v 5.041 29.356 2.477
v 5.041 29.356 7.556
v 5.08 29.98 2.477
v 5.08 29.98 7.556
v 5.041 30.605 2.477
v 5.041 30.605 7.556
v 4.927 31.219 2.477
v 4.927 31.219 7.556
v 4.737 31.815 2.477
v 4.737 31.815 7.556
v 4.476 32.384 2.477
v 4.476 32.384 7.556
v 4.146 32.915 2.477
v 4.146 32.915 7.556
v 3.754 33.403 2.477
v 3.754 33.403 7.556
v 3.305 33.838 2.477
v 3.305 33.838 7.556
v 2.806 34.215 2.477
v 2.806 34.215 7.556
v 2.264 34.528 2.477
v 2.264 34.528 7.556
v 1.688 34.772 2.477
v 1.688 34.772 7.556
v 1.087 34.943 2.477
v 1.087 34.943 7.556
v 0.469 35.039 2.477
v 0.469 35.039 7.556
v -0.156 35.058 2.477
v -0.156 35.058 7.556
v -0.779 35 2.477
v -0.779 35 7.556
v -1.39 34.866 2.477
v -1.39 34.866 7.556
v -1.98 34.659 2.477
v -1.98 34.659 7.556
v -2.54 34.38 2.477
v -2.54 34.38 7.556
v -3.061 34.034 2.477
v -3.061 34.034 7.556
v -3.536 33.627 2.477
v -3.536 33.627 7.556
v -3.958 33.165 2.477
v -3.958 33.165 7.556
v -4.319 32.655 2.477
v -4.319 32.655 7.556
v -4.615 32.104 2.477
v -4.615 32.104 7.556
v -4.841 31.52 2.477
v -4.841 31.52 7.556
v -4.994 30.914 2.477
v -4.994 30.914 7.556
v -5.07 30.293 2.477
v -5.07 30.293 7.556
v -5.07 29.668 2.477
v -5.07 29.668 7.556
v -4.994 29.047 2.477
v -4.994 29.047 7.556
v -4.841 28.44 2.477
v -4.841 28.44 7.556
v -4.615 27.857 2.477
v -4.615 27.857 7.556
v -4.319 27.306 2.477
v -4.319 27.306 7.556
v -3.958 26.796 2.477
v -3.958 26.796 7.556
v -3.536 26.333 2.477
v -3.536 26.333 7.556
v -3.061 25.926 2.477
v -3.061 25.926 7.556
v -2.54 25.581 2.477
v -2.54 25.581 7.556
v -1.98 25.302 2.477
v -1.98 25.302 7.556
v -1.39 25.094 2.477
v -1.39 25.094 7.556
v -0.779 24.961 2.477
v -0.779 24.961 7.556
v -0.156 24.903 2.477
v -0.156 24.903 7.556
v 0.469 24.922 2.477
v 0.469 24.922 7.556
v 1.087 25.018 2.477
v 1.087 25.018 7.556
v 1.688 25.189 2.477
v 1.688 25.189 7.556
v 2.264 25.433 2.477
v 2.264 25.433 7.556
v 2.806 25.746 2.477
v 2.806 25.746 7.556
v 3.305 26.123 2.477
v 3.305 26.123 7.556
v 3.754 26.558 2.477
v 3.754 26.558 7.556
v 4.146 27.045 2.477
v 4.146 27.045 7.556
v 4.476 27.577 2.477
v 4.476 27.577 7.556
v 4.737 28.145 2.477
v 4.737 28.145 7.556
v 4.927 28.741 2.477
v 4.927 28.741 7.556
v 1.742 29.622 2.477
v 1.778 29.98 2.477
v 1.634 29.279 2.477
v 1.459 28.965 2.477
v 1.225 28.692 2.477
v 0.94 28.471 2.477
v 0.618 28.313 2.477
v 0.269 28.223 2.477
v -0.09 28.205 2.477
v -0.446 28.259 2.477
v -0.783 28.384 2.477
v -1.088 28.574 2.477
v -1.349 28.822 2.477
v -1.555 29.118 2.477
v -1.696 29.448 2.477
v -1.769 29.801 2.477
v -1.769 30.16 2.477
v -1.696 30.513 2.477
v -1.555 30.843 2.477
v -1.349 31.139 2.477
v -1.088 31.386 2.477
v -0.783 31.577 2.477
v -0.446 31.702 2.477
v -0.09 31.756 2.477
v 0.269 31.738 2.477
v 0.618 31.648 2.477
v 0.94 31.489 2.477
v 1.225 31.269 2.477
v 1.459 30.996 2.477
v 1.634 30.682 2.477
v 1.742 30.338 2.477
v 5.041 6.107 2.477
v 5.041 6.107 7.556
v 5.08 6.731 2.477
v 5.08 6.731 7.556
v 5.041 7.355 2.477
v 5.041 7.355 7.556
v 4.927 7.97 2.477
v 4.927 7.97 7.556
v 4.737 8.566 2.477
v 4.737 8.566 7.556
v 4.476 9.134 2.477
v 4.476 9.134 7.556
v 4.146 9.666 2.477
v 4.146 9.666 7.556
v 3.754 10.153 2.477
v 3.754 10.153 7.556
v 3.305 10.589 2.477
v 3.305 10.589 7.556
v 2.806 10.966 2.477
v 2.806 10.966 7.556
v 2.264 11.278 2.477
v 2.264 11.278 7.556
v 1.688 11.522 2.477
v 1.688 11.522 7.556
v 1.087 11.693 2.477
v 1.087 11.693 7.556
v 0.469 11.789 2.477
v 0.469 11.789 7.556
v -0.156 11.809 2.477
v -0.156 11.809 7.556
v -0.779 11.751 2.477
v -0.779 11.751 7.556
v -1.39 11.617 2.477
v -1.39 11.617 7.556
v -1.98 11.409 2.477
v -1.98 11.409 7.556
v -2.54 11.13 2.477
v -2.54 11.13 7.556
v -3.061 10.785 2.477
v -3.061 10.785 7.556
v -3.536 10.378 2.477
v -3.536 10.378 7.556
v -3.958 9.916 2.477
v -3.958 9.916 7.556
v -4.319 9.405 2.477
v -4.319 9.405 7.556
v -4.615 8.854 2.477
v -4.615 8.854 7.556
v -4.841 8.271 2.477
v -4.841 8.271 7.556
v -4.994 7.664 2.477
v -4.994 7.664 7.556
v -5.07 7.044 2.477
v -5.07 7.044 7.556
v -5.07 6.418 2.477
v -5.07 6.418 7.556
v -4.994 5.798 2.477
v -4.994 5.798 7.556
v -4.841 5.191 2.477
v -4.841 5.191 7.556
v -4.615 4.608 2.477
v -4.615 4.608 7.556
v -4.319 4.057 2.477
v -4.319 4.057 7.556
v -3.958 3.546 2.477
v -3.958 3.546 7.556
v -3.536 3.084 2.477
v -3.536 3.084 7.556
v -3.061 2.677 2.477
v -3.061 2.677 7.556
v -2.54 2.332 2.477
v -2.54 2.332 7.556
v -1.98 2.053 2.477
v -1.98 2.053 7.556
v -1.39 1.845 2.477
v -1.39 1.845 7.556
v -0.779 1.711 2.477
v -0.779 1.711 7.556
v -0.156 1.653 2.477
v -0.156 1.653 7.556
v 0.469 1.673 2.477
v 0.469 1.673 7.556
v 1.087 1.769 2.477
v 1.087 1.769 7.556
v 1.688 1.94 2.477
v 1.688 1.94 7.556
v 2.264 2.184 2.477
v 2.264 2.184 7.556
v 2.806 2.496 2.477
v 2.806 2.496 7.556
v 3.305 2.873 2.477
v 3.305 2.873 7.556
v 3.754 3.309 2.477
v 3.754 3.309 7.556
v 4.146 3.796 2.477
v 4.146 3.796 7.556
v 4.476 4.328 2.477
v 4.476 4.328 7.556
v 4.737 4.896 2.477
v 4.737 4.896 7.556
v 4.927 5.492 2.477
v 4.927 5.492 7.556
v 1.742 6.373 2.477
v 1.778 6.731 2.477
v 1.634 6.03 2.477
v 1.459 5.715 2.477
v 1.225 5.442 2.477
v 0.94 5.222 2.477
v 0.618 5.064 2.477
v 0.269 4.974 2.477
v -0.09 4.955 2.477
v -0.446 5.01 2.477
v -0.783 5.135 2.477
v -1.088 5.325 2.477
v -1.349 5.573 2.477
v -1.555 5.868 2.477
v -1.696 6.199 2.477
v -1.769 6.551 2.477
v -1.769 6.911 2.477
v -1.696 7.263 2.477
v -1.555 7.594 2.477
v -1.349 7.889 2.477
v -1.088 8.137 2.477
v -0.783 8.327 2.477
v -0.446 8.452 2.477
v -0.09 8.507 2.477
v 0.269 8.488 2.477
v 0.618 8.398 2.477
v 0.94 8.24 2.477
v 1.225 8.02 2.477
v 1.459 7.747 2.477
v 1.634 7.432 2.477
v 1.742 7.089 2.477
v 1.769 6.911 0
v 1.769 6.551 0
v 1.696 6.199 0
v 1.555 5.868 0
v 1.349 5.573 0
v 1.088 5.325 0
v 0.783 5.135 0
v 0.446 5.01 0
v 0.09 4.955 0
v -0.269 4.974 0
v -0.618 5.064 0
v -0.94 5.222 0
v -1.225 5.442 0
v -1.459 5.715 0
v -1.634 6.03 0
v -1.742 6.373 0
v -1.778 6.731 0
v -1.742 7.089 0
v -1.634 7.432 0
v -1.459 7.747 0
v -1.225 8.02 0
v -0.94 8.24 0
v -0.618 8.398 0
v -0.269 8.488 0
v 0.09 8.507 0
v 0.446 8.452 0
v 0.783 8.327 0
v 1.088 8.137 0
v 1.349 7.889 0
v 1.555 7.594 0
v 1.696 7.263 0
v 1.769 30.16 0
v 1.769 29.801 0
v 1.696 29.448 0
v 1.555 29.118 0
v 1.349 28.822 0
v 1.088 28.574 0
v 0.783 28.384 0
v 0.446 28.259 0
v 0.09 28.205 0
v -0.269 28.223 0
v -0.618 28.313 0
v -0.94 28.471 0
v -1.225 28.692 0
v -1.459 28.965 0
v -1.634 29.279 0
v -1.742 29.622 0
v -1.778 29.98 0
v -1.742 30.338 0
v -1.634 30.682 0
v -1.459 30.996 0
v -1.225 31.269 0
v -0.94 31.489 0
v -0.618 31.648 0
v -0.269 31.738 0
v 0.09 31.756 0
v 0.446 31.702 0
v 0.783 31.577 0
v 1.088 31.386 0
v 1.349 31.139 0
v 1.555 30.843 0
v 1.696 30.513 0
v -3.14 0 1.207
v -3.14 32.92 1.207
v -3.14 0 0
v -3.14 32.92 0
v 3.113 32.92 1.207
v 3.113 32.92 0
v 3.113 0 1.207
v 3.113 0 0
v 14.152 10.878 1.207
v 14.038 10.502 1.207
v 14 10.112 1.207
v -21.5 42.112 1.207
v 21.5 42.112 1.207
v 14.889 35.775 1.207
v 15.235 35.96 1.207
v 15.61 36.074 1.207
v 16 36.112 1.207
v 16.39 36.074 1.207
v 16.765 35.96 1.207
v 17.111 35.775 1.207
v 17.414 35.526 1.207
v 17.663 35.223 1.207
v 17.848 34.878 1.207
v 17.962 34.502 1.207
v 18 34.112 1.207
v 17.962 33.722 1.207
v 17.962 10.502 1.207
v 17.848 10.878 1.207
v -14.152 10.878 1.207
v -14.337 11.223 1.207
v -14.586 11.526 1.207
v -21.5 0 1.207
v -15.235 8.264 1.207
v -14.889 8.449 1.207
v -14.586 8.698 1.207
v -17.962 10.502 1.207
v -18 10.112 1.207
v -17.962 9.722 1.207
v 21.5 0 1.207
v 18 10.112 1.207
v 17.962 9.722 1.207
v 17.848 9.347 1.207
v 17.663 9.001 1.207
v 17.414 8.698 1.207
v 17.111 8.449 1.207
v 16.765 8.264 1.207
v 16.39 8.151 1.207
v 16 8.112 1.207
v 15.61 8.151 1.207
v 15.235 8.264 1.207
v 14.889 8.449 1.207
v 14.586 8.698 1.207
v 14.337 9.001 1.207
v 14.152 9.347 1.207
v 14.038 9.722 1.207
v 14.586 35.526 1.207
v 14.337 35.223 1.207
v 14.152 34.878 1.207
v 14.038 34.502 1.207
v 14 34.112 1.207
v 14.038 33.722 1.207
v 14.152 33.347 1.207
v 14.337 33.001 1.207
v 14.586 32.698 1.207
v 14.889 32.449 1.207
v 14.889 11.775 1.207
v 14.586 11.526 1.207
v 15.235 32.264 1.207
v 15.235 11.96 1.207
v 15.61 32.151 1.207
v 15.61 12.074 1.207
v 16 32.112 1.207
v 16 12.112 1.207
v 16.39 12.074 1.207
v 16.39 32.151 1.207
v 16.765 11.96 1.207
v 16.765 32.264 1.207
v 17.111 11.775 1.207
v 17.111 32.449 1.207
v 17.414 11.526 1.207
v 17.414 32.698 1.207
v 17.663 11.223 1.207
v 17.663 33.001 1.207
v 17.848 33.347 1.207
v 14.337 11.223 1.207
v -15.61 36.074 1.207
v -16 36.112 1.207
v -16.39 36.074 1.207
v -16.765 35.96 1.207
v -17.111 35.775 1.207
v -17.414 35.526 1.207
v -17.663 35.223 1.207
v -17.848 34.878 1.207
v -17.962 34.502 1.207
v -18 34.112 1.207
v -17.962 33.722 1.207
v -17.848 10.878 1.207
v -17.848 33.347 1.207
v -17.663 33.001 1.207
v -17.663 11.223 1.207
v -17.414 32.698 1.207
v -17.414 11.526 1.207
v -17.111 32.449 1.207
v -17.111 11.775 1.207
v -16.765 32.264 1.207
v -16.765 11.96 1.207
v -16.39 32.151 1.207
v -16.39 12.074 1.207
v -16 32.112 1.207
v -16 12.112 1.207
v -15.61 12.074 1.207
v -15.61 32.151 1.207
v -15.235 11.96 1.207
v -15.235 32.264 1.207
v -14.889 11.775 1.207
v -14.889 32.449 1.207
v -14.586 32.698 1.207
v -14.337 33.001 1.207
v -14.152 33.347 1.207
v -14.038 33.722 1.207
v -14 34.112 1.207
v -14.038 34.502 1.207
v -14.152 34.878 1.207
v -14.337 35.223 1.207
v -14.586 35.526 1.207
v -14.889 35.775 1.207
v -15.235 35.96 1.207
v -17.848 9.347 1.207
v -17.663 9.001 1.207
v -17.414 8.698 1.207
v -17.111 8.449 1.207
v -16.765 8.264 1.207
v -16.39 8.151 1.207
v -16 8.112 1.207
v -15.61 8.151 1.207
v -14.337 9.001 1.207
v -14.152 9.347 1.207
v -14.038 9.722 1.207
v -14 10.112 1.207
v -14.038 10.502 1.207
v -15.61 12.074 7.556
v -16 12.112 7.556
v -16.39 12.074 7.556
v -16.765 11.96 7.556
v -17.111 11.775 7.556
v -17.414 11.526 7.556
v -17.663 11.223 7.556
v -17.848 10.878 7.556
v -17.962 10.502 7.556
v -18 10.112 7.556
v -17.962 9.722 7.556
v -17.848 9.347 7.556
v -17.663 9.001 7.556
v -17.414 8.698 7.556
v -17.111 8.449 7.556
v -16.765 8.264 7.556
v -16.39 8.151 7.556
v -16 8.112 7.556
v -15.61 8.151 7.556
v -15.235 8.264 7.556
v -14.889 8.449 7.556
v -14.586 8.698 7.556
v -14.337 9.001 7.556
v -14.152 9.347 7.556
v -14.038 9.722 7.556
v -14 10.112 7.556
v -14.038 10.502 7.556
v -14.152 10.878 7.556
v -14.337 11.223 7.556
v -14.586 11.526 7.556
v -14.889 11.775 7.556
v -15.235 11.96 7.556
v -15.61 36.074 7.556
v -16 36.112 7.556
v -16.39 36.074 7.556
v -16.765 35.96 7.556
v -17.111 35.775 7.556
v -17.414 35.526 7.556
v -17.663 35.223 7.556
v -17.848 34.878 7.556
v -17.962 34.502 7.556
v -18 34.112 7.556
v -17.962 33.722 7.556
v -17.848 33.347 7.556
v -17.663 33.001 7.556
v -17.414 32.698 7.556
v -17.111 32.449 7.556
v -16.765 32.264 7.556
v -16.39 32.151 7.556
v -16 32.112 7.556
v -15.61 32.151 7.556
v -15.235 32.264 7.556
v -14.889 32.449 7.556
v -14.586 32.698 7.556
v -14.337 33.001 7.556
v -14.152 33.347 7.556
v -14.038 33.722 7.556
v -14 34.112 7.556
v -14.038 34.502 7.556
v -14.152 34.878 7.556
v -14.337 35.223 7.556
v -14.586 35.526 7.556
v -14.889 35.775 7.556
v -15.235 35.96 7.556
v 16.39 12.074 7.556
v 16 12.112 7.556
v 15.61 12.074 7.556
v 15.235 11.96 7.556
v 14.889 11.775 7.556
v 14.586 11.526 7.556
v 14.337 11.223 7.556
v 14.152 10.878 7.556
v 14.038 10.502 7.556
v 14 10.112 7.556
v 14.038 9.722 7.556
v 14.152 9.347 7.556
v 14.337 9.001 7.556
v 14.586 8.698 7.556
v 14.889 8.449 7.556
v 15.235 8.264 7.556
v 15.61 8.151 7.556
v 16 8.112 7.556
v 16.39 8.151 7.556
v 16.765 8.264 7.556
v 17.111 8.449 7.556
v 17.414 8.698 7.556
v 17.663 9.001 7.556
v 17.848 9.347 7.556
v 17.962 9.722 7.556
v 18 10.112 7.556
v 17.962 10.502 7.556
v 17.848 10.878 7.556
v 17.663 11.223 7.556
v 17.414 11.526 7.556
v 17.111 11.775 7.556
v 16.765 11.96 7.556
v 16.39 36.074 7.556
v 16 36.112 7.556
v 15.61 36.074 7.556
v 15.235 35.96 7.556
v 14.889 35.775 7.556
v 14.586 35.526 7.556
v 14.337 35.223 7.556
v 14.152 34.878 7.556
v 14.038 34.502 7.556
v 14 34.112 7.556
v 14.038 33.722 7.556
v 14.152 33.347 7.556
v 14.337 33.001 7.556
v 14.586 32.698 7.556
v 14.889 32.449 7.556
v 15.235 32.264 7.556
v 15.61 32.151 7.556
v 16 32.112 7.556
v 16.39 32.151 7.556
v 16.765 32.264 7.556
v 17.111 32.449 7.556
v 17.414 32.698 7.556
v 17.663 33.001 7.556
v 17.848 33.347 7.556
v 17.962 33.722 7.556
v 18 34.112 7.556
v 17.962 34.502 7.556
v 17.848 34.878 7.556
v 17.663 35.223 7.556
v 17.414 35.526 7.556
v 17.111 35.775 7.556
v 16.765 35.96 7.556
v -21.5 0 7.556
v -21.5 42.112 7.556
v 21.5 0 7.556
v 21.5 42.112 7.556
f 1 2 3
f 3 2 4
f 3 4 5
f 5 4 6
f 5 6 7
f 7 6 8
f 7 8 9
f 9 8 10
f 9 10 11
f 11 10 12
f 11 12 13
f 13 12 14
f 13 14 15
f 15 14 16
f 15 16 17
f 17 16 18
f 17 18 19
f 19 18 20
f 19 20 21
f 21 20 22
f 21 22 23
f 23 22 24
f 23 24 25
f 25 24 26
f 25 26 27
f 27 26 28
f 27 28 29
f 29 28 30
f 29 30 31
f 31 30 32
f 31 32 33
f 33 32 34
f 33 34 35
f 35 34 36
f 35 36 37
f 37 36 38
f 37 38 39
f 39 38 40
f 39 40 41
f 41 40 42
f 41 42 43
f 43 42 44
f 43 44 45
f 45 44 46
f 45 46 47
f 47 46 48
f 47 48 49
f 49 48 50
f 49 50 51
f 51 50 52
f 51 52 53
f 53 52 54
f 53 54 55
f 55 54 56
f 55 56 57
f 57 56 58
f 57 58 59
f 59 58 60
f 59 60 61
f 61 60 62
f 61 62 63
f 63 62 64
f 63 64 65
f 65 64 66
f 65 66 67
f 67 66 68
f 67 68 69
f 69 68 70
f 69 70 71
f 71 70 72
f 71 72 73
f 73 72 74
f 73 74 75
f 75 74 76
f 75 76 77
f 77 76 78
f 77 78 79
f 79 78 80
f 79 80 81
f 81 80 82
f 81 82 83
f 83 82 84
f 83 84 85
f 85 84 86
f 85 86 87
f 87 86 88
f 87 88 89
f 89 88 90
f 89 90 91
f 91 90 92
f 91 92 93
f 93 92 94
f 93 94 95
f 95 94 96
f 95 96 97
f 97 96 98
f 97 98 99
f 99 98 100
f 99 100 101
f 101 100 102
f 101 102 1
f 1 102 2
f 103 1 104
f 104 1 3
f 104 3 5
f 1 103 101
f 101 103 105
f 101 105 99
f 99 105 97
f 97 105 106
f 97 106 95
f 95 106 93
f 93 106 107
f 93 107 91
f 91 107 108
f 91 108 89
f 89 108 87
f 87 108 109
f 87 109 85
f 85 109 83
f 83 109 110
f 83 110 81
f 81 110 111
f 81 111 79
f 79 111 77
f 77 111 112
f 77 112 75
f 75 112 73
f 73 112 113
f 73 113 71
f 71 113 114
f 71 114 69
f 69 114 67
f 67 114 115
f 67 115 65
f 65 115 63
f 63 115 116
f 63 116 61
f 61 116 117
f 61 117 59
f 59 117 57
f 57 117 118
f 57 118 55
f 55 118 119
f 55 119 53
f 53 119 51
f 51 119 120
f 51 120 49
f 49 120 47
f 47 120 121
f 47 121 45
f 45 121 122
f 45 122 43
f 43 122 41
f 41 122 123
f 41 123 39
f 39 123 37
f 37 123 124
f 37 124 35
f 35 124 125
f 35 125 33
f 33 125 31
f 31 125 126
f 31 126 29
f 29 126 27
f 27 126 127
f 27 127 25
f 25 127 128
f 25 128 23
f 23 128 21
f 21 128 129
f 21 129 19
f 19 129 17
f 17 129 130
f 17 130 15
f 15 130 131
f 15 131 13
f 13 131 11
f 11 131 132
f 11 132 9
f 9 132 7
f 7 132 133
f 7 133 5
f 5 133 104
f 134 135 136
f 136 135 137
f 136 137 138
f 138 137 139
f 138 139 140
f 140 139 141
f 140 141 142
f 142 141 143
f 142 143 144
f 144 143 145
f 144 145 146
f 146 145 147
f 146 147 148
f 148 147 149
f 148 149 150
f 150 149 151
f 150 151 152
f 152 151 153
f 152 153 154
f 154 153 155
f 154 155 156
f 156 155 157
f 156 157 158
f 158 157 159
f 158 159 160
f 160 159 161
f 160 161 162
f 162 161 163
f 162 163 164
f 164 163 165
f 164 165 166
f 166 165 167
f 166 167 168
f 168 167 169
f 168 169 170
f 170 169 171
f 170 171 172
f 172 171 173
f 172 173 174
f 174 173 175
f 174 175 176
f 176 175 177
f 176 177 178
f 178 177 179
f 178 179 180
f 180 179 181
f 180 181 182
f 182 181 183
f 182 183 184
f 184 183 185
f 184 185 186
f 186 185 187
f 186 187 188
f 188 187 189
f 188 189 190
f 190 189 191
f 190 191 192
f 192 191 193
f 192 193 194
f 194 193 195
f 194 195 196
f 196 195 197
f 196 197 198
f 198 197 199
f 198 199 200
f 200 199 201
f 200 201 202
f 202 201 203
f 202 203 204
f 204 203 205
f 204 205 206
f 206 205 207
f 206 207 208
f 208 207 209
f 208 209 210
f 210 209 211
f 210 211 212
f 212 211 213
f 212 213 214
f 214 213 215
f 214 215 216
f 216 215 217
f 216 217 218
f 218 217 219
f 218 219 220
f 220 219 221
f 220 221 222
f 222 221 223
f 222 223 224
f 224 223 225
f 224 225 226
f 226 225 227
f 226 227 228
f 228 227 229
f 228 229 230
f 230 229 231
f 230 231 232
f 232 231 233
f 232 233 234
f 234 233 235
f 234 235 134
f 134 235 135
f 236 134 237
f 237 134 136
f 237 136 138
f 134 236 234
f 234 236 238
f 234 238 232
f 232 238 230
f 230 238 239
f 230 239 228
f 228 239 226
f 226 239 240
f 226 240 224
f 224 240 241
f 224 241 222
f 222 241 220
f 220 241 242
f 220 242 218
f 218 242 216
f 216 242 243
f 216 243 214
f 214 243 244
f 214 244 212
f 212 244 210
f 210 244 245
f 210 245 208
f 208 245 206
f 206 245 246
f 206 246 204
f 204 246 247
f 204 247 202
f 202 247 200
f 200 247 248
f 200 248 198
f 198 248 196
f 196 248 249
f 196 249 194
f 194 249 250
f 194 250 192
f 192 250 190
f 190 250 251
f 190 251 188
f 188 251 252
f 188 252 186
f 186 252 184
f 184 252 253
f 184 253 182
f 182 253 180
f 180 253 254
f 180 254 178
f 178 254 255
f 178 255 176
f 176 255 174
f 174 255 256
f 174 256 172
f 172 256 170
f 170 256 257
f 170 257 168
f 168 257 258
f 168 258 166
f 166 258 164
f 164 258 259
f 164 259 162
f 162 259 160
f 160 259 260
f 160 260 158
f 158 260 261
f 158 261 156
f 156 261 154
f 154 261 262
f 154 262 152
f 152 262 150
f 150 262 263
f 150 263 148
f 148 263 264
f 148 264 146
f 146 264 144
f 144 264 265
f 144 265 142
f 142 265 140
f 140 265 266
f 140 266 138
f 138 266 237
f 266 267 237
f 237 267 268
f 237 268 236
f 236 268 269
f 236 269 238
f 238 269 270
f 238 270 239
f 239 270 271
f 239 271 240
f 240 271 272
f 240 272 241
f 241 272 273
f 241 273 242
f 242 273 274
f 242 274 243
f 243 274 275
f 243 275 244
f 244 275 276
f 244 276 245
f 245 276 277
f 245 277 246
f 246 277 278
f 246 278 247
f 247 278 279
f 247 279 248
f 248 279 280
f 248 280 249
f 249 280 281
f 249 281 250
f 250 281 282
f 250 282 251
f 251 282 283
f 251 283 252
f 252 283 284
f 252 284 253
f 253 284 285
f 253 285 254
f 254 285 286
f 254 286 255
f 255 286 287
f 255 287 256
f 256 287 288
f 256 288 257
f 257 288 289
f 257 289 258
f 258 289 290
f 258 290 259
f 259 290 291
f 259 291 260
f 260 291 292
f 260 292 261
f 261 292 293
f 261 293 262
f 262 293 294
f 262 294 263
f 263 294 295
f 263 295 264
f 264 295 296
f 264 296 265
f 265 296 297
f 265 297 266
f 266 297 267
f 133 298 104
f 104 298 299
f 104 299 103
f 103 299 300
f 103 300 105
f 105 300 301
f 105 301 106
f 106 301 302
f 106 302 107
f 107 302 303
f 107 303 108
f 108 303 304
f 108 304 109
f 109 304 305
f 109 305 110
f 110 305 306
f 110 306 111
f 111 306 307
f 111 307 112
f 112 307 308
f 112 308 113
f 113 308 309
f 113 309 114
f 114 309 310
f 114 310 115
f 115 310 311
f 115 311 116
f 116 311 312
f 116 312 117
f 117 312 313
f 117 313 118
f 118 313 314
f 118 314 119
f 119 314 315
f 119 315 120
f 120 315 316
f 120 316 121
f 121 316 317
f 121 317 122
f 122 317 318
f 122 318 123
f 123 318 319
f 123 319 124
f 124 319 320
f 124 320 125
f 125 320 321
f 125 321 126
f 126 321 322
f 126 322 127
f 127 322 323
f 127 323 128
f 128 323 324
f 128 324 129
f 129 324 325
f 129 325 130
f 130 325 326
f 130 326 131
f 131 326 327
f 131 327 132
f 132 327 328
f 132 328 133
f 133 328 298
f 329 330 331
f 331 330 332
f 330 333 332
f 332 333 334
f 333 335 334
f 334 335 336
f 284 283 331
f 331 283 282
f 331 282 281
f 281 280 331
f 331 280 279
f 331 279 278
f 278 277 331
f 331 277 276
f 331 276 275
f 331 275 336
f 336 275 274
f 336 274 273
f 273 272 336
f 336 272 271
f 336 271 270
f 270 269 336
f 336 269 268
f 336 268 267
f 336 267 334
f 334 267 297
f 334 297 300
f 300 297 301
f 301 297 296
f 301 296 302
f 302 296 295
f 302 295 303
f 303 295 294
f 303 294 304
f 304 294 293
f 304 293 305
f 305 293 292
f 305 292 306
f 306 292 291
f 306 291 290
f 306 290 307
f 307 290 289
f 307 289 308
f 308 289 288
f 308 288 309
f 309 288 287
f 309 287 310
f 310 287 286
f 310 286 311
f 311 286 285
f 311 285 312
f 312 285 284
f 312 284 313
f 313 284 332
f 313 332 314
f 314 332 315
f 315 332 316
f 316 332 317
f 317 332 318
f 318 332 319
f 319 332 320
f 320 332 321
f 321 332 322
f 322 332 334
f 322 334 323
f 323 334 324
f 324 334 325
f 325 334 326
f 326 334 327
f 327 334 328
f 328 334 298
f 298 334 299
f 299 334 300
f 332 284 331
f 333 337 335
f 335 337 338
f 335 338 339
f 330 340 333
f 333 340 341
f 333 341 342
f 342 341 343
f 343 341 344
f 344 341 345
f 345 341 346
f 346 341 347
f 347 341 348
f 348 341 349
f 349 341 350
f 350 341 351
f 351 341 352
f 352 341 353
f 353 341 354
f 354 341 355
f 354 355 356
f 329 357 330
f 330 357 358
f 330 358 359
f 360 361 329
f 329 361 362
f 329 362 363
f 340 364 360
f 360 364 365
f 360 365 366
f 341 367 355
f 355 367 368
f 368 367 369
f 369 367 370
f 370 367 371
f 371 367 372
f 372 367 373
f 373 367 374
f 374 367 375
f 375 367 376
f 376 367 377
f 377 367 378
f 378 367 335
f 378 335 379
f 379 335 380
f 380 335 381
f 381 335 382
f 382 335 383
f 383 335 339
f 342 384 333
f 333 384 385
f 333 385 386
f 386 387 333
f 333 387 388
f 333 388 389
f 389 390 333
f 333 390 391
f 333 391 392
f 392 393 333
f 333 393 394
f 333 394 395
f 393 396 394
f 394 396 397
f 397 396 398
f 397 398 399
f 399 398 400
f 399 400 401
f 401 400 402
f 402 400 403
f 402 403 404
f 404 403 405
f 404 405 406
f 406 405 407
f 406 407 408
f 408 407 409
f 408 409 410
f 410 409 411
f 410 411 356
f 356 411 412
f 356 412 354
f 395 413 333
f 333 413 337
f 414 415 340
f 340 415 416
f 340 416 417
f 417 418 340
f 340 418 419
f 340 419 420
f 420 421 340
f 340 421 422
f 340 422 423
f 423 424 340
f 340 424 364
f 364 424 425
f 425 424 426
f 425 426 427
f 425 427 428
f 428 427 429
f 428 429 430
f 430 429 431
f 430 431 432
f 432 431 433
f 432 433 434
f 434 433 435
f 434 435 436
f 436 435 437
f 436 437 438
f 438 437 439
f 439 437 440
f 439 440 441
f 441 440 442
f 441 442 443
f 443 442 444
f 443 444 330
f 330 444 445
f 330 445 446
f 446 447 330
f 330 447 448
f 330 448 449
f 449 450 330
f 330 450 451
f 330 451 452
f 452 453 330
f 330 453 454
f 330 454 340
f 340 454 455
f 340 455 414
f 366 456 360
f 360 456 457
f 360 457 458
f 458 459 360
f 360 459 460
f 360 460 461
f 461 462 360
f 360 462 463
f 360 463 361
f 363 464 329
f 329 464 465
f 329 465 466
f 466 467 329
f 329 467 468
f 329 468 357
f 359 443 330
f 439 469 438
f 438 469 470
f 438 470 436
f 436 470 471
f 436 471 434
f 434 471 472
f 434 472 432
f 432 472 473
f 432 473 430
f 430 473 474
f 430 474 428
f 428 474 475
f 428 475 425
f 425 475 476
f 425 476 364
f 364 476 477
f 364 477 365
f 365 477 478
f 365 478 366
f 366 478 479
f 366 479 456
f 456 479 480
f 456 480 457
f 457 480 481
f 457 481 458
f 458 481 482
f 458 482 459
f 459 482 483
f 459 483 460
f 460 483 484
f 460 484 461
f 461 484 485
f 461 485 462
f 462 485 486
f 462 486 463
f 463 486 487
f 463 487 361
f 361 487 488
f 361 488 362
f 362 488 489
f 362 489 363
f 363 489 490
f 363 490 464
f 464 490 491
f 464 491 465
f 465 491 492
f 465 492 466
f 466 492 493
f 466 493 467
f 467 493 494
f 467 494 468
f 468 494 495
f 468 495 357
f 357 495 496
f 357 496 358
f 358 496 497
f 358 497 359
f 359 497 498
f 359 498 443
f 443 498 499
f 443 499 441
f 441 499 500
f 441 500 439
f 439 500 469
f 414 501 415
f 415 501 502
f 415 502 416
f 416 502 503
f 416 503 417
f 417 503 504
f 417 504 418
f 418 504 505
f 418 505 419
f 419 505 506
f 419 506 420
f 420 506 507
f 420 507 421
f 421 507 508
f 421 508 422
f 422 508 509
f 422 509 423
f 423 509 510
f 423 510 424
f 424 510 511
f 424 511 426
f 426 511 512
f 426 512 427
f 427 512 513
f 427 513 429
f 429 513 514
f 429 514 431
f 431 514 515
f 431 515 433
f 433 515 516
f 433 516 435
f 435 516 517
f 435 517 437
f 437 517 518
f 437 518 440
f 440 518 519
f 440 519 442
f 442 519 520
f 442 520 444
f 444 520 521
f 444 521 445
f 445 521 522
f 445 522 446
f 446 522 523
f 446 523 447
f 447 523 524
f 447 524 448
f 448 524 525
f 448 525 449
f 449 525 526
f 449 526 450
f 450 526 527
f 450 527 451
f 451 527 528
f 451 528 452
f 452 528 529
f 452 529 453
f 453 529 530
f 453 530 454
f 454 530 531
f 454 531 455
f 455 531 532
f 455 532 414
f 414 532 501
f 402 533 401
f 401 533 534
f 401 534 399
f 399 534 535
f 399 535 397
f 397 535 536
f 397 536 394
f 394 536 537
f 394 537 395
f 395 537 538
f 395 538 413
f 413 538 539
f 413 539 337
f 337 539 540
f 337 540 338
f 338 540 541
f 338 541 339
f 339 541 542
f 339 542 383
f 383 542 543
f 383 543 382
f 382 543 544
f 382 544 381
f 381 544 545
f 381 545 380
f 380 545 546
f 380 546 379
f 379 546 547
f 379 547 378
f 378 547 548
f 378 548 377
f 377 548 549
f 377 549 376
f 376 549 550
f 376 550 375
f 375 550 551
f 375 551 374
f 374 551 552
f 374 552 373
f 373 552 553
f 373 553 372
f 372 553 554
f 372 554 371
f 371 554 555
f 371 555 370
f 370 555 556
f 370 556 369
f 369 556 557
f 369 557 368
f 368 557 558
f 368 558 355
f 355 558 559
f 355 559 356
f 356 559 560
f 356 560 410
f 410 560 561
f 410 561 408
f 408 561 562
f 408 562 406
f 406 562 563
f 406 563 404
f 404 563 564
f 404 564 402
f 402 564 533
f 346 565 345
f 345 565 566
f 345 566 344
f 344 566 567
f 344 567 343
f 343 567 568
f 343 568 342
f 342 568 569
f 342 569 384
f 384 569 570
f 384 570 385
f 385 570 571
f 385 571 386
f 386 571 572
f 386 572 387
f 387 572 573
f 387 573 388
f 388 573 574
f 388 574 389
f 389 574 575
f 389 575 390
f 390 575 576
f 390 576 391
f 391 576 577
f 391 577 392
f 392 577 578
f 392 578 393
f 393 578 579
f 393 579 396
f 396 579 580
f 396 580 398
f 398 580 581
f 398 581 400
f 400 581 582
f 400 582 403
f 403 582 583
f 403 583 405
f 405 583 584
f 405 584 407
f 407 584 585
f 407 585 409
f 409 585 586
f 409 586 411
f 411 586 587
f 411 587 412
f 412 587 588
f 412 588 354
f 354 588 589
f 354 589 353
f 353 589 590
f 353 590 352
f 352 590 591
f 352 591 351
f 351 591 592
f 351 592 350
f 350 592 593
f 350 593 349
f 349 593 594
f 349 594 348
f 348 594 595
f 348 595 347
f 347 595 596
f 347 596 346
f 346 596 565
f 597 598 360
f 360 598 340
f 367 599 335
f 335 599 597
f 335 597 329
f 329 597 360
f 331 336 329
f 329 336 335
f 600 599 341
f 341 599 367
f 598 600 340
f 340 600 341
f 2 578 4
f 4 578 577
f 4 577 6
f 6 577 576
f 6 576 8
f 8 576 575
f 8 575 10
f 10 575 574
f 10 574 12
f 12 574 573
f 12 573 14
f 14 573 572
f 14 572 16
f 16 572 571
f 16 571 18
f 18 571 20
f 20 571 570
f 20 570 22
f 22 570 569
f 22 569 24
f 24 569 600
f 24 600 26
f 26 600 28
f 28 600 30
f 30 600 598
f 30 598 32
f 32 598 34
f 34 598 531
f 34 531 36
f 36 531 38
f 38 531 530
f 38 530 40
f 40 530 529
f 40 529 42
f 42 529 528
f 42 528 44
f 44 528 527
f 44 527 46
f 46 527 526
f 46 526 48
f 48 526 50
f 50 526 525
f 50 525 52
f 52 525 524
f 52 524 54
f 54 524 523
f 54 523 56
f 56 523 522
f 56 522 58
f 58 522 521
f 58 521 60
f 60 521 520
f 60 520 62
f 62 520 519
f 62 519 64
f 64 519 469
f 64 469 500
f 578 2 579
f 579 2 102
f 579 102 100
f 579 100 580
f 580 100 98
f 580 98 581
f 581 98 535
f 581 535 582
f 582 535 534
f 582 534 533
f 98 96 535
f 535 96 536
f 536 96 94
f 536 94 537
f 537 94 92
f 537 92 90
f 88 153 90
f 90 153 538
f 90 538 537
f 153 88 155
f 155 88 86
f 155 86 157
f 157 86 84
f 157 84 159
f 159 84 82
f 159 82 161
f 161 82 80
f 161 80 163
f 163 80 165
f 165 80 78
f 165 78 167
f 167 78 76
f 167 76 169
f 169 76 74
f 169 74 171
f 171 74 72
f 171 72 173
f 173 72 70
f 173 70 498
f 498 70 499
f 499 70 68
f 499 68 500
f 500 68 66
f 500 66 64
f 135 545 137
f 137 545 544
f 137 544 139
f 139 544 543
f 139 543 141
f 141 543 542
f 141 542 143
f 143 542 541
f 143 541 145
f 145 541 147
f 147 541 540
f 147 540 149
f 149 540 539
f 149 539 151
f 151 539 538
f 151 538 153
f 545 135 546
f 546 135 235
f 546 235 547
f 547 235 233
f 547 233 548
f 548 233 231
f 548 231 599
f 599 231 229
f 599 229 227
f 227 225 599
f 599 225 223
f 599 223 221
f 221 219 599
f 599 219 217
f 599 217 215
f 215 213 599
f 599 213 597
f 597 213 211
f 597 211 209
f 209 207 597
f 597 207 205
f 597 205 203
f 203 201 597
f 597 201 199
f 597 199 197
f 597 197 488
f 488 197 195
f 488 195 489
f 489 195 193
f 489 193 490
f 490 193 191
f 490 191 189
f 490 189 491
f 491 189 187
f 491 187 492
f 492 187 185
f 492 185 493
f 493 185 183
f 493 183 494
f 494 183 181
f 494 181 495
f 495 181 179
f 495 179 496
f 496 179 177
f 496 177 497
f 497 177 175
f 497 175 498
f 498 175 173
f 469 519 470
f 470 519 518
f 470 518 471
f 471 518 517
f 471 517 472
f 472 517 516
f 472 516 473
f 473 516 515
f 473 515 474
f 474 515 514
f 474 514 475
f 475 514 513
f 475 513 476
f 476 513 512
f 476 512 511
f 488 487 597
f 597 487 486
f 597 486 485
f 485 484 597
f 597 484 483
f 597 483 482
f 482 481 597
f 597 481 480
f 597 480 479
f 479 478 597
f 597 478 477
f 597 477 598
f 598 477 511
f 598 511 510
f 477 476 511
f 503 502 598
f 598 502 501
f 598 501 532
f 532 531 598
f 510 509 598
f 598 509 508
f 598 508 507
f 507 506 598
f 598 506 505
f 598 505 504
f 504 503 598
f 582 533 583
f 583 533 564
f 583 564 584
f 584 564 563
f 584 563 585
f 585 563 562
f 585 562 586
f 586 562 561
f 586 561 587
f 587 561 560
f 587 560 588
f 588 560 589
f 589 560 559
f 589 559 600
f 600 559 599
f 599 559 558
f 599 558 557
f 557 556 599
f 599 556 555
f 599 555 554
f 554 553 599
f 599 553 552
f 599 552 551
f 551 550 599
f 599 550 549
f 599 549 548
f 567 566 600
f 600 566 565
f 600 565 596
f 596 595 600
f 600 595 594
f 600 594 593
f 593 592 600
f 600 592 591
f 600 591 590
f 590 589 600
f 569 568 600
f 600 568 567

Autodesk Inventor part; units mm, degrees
ref_plane "YZ Plane" through (0, 0, 0) normal (1, 0, 0) x (0, 1, 0)
ref_plane "XZ Plane" through (0, 0, 0) normal (0, 1, 0) x (-1, 0, 0)
ref_plane "XY Plane" through (0, 0, 0) normal (0, 0, 1) x (1, 0, 0)
ref_plane "Work Plane7" through (21.5, 42.1122, 7.5565) normal (0, 0, -1) x (0, 1, 0)
sketch "Sketch4" plane through (21.5, 42.1122, 7.5565) normal (0, 0, -1) x (0, 1, 0)
  line L0 (-42.1122, -17.69) -> (-42.1122, -25.31) construction
  line L1 (0, 0) -> (0, -43) construction
  line L2 (-528, -43) -> (0, -43) construction
  line L3 (-528, 0) -> (0, 0) construction
  line L4 (-42.1122, -43) -> (0, -43)
  line L5 (0, -43) -> (0, 0)
  line L6 (0, 0) -> (-42.1122, 0)
  line L7 (-42.1122, 0) -> (-42.1122, -43)
  circle A0 centre (-8, -5.5) radius 2
  circle A1 centre (-32, -5.5) radius 2
  circle A2 centre (-8, -37.5) radius 2
  circle A3 centre (-32, -37.5) radius 2
  point P0 (-42.1122, -21.5)
extrude "Extrusion4" add sketch "Sketch4" along normal blind 6.35
ref_plane "Work Plane6" through (0, 0, 0) normal (0, 0, 1) x (1, 0, 0)
sketch "Sketch5" plane through (0, 0, 0) normal (0, 0, 1) x (1, 0, 0)
  line L0 (3.1132, 0) -> (3.1132, 33.02) construction
  line L1 (-3.1132, 0) -> (-3.1132, 33.02) construction
  line L2 (3.14, 32.92) -> (-3.14, 32.92) construction
  line L3 (-21.5, 0) -> (21.5, 0) construction
  line L4 (3.1132, 0) -> (-3.14, 0)
  line L5 (-3.14, 0) -> (-3.14, 32.92)
  line L6 (-3.14, 32.92) -> (3.1132, 32.92)
  line L7 (3.1132, 32.92) -> (3.1132, 0)
  arc A0 (-0.0115, 8.4836) -> (1.2335, 7.976) centre (0, 6.731) ccw construction
  spline S0 degree 3 poles (-3.9963, 27.1983) (-3.9282, 27.0439) (-3.8705, 26.8672) (-3.7787, 26.4733) (-3.747, 26.2579) (-3.7229, 25.8912) (-3.7161, 25.6578) (-3.7657, 25.2017) (-3.8042, 25.0235) (-3.9064, 24.7384) (-3.9674, 24.6297) (-4.0735, 24.5156) (-4.1125, 24.4855) (-4.225, 24.4328) (-4.3003, 24.4339) (-4.4555, 24.5079) (-4.5339, 24.5853) (-4.6625, 24.7855) (-4.7303, 24.9172) (-4.8354, 25.2648) (-4.8698, 25.4348) (-4.9129, 25.8035) (-4.9196, 25.9997) (-4.906, 26.2838) (-4.8978, 26.3737) (-4.8628, 26.6198) (-4.8272, 26.7652) (-4.7302, 27.0244) (-4.6681, 27.1326) (-4.5976, 27.2088) knots 0.000001 0.000001 0.000001 0.000001 0.061283 0.061283 0.126502 0.126502 0.171802 0.171802 0.206523 0.206523 0.238722 0.238722 0.255636 0.255636 0.285543 0.285543 0.317605 0.317605 0.342807 0.342807 0.362438 0.362438 0.383231 0.383231 0.393319 0.393319 0.411548 0.411548 0.431083 0.431083 0.431083 0.431083 construction
  circle A1 centre (0, 6.731) radius 1.778 construction
  circle A2 centre (-0.0134, 32.92) radius 1.778 construction
  point P0 (0, 0)
  dimension "d10" = 3.556
  dimension "d11" = 3.556
extrude "Extrusion5" add sketch "Sketch5" along normal up to surface (1.2065 mm away)
sketch "Sketch6" plane through (21.5, 42.1122, 7.5565) normal (0, 0, 1) x (1, 0, 0)
  arc A0 (-21.5115, -33.6287) -> (-20.2665, -34.1362) centre (-21.5, -35.3812) ccw construction
  arc A1 (-21.5115, -10.3793) -> (-20.2665, -10.8868) centre (-21.5, -12.1318) ccw construction
  point P0 (-21.5, -42.1122)
hole "Hole2" at (0, 6.731, 7.5565) at (0, 29.9804, 7.5565) direction (0, 0, -1) diameter 3.556 end through all
ref_plane "Work Plane8" through (21.5, 42.1122, 7.5565) normal (0, 0, 1) x (1, 0, 0)
sketch "Sketch7" plane through (21.5, 42.1122, 7.5565) normal (0, 0, 1) x (1, 0, 0)
  circle A0 centre (-21.5, -12.1318) radius 1.778 projected
  circle A1 centre (-21.5, -12.1318) radius 5.08
  circle A2 centre (-21.5, -35.3812) radius 1.778 projected
  circle A3 centre (-21.5, -35.3812) radius 5.08
  point P0 (-21.5, -42.1122)
  dimension "d28" = 10.16
  dimension "d29" = 10.16
extrude "Extrusion6" cut sketch "Sketch7" against normal blind 5.08
properties part number "LeadScrewNutCoupler"
